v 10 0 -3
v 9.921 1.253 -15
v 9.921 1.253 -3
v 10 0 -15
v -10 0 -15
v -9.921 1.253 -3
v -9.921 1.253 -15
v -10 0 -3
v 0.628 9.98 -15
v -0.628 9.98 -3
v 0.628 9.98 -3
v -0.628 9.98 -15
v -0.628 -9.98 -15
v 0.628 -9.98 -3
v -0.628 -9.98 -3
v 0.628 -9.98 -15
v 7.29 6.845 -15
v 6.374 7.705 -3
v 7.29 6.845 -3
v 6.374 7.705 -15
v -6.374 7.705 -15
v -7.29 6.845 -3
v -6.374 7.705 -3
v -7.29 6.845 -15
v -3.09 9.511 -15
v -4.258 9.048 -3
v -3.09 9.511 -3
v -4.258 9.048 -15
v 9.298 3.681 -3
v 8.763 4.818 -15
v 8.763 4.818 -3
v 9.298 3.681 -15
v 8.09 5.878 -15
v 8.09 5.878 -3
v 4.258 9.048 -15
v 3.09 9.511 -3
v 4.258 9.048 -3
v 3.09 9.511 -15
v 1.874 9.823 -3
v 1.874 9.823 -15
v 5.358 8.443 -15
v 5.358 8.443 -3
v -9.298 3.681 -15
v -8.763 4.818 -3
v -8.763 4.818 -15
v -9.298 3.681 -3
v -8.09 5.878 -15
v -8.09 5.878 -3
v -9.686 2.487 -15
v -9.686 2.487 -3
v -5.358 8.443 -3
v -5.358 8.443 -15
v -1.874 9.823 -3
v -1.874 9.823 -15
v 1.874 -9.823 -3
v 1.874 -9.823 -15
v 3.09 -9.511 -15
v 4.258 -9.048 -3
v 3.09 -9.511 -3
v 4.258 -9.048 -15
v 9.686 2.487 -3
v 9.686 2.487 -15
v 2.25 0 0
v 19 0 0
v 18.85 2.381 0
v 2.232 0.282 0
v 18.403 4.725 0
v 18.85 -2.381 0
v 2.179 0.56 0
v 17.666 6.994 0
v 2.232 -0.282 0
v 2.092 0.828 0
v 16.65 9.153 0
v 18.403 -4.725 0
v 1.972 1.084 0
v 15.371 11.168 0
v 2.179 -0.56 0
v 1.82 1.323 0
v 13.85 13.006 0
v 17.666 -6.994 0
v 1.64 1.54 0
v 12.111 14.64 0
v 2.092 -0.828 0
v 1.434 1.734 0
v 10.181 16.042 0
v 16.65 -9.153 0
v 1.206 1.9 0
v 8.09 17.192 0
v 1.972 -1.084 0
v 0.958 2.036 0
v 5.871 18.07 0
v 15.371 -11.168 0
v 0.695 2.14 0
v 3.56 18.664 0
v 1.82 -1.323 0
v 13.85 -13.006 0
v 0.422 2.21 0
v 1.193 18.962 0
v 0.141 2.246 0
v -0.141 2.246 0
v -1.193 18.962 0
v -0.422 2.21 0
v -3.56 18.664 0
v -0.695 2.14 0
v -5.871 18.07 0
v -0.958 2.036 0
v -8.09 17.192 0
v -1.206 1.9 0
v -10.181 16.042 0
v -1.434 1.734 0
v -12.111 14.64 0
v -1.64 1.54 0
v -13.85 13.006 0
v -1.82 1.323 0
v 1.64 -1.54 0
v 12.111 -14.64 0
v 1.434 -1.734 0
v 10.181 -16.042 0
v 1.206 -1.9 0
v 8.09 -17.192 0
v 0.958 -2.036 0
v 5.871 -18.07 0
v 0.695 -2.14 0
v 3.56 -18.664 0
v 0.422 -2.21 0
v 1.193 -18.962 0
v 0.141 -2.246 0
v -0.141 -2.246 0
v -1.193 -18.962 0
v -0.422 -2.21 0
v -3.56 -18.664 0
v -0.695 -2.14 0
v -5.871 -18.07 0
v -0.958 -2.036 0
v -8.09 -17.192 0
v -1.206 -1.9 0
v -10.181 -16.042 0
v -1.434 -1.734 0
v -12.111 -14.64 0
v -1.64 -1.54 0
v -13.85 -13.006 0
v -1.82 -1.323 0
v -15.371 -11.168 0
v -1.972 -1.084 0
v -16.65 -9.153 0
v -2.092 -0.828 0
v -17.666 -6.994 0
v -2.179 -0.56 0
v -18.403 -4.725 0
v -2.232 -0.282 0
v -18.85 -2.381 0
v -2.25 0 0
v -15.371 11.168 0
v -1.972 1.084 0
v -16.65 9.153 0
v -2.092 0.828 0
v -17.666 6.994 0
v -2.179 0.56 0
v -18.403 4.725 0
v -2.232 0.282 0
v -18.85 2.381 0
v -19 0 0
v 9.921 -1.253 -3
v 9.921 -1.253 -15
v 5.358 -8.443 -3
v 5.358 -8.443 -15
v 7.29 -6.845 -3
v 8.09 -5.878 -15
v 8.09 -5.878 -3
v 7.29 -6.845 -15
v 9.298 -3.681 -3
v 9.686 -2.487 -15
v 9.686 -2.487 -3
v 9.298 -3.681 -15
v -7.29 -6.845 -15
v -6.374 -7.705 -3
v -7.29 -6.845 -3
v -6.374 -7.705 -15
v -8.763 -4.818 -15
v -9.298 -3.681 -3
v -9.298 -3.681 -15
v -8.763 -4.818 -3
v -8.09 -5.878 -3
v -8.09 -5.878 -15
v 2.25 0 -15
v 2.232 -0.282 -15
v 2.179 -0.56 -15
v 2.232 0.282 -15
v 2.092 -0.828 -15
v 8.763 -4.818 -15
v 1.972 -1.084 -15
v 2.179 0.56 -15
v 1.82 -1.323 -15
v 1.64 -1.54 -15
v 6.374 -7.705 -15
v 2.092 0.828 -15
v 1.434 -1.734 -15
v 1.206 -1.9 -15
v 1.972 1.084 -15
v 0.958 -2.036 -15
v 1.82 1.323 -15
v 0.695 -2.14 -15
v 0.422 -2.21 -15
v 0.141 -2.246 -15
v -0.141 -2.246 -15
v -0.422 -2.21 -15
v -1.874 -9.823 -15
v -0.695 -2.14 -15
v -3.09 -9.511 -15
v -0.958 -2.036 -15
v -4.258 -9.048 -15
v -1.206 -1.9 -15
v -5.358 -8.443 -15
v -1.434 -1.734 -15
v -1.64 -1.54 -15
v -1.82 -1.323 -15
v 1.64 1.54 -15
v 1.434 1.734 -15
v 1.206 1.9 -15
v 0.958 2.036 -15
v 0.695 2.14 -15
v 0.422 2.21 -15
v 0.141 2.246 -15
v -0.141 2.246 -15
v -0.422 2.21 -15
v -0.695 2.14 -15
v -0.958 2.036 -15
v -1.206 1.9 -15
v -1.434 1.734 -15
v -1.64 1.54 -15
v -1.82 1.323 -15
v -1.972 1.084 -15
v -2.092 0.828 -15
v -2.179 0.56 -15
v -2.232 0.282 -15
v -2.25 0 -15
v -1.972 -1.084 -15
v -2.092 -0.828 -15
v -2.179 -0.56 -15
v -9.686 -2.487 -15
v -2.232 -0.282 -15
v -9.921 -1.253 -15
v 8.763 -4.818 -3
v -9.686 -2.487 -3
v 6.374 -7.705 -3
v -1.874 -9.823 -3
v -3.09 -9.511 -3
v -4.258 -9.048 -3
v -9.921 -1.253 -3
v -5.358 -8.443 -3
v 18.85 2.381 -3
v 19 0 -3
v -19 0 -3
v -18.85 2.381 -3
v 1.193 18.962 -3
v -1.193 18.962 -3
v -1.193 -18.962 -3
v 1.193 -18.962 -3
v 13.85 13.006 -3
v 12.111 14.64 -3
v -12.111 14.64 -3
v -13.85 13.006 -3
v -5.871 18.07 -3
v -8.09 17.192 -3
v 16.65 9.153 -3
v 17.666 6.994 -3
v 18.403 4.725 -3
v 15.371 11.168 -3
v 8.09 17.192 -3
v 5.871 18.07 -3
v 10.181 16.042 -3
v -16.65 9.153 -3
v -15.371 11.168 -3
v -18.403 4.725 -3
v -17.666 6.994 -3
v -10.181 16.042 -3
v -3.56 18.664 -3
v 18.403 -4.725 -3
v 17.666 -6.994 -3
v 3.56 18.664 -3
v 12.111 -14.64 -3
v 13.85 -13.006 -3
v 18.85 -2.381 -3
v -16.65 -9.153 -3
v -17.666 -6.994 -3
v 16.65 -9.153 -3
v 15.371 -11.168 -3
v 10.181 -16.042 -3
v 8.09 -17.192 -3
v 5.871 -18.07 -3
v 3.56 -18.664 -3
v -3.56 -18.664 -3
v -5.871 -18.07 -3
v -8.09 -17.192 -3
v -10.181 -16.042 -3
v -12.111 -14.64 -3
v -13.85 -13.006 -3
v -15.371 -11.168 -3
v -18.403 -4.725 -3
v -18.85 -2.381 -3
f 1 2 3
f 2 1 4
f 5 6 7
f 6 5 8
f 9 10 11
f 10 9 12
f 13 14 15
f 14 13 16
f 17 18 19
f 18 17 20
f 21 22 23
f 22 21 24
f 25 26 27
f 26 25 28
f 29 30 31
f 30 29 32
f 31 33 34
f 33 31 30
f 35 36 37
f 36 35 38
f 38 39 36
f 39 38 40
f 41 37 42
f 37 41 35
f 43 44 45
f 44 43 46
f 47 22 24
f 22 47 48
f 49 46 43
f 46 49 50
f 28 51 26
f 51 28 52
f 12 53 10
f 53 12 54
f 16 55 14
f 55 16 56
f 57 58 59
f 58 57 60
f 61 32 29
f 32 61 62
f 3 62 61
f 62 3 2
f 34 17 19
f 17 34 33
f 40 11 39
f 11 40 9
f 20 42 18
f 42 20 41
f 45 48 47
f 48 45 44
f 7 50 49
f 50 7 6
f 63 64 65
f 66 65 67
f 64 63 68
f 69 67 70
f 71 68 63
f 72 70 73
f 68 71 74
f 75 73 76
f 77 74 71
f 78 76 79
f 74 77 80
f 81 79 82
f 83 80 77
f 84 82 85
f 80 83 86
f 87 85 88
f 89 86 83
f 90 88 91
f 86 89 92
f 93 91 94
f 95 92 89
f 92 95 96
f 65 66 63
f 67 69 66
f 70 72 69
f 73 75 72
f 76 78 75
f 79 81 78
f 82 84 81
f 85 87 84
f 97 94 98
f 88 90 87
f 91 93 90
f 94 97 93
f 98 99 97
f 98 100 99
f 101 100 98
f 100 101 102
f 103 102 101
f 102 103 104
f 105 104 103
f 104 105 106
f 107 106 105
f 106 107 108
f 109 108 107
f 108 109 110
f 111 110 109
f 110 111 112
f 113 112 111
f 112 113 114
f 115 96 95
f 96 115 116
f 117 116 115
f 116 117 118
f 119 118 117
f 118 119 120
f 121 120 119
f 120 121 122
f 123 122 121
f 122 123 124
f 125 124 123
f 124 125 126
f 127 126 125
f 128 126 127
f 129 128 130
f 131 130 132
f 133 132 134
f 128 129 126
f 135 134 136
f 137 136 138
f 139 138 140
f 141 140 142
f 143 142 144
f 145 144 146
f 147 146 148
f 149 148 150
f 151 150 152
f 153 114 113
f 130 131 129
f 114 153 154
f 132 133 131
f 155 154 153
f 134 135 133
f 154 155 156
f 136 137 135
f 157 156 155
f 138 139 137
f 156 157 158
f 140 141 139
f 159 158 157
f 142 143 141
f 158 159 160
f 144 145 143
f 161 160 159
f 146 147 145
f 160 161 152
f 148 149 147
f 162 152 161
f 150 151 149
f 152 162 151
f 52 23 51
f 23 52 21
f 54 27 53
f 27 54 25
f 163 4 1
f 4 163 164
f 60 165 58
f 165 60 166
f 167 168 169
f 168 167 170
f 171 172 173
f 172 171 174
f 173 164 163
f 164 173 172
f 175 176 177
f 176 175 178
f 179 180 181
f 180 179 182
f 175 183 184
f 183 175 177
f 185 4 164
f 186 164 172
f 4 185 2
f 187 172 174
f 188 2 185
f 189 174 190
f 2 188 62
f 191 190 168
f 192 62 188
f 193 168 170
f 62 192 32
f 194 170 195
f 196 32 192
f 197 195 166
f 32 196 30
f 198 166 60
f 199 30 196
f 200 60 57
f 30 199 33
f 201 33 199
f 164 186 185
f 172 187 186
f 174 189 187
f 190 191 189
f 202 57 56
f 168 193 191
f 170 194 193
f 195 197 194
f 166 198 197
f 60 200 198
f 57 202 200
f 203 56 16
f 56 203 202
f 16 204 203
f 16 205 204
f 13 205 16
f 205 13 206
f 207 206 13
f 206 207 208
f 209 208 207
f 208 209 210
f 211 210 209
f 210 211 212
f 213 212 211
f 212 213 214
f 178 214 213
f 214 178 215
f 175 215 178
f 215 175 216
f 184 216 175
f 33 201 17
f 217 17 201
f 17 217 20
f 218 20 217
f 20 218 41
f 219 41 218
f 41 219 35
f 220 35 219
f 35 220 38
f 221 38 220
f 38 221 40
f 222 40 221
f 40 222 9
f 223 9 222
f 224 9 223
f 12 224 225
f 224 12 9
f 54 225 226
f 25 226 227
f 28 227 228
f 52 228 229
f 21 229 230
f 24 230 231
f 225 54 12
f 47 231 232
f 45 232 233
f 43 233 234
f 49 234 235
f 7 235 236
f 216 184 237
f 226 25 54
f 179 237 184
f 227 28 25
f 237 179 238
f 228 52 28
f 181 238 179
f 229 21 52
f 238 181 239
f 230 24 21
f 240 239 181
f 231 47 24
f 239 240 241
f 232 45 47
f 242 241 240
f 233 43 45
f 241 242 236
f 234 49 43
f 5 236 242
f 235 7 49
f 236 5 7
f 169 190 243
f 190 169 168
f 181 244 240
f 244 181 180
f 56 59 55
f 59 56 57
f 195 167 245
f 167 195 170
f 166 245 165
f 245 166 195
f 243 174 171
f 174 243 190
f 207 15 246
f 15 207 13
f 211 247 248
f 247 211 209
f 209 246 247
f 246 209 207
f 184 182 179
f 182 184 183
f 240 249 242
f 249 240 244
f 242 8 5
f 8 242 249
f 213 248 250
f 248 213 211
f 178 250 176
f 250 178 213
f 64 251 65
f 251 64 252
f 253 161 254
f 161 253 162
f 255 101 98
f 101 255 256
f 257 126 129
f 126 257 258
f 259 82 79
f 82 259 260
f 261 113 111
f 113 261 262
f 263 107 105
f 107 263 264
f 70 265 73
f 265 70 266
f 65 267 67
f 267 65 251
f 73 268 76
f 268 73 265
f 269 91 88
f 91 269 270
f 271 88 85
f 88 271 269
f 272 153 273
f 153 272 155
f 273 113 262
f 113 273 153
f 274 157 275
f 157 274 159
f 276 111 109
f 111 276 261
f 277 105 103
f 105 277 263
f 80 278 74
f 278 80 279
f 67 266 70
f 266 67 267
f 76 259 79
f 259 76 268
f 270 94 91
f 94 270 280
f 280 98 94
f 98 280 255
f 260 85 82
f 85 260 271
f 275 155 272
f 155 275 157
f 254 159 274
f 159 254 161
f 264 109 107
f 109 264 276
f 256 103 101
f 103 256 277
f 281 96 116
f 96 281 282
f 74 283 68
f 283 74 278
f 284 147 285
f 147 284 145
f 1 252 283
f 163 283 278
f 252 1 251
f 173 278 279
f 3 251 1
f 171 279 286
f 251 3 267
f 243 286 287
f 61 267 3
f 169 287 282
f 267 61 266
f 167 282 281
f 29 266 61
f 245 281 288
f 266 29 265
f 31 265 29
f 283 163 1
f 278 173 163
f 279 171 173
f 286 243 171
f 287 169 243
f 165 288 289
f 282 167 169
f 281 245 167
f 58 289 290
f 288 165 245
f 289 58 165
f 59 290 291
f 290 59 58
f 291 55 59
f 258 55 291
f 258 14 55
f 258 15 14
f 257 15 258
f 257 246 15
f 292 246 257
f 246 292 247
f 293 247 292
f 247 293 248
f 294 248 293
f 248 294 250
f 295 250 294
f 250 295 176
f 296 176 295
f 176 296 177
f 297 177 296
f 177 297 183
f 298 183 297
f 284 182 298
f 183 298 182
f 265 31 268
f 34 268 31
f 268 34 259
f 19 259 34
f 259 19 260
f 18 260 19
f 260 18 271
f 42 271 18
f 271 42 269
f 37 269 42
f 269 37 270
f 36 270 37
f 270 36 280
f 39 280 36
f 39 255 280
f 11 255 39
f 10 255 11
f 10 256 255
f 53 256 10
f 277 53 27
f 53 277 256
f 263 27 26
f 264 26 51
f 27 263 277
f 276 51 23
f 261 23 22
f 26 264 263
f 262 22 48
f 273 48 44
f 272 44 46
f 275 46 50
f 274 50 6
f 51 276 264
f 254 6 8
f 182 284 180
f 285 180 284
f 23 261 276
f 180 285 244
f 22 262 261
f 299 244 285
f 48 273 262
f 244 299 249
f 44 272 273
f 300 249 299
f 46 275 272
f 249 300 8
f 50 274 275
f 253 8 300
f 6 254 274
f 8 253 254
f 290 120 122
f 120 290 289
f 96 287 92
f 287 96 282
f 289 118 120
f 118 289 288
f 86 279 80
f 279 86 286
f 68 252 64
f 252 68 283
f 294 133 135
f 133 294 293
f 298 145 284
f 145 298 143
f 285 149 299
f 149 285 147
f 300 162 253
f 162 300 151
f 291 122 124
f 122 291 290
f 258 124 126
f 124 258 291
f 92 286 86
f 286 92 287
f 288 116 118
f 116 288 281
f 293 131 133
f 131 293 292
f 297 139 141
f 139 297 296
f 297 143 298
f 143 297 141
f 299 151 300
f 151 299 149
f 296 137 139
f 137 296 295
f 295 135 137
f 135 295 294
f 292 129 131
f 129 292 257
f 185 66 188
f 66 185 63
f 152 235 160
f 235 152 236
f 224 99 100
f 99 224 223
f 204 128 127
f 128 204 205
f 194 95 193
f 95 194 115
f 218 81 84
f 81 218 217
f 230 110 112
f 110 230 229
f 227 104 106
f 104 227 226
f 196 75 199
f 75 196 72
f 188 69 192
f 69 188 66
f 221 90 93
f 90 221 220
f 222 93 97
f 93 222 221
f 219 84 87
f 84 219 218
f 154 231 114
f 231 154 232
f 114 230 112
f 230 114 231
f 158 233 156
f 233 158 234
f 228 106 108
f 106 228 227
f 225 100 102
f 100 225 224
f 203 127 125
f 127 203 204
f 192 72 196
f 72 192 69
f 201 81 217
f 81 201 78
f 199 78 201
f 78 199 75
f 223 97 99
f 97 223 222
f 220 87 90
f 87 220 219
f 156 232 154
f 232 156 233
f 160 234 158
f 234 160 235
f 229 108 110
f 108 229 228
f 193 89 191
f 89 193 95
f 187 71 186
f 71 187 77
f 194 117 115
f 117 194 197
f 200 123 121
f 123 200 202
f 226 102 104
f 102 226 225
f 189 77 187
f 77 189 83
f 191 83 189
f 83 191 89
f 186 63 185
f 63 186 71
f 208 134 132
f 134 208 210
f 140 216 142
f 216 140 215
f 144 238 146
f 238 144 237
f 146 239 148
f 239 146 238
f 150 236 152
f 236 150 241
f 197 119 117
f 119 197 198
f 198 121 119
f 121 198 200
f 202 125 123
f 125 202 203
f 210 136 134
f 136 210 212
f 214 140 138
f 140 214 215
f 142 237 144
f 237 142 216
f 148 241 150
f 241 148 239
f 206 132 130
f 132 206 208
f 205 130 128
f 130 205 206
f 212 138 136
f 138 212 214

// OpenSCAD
$fn = 50;


difference() {
	union() {
		translate(v = [0, 0, -15.0000000000]) {
			cylinder(h = 15, r = 10.0000000000);
		}
		translate(v = [0, 0, -3.0000000000]) {
			cylinder(h = 3, r = 19.0000000000);
		}
	}
	union() {
		#translate(v = [0, 0, -15]) {
			cylinder(h = 15, r = 2.2500000000);
		}
	}
}
